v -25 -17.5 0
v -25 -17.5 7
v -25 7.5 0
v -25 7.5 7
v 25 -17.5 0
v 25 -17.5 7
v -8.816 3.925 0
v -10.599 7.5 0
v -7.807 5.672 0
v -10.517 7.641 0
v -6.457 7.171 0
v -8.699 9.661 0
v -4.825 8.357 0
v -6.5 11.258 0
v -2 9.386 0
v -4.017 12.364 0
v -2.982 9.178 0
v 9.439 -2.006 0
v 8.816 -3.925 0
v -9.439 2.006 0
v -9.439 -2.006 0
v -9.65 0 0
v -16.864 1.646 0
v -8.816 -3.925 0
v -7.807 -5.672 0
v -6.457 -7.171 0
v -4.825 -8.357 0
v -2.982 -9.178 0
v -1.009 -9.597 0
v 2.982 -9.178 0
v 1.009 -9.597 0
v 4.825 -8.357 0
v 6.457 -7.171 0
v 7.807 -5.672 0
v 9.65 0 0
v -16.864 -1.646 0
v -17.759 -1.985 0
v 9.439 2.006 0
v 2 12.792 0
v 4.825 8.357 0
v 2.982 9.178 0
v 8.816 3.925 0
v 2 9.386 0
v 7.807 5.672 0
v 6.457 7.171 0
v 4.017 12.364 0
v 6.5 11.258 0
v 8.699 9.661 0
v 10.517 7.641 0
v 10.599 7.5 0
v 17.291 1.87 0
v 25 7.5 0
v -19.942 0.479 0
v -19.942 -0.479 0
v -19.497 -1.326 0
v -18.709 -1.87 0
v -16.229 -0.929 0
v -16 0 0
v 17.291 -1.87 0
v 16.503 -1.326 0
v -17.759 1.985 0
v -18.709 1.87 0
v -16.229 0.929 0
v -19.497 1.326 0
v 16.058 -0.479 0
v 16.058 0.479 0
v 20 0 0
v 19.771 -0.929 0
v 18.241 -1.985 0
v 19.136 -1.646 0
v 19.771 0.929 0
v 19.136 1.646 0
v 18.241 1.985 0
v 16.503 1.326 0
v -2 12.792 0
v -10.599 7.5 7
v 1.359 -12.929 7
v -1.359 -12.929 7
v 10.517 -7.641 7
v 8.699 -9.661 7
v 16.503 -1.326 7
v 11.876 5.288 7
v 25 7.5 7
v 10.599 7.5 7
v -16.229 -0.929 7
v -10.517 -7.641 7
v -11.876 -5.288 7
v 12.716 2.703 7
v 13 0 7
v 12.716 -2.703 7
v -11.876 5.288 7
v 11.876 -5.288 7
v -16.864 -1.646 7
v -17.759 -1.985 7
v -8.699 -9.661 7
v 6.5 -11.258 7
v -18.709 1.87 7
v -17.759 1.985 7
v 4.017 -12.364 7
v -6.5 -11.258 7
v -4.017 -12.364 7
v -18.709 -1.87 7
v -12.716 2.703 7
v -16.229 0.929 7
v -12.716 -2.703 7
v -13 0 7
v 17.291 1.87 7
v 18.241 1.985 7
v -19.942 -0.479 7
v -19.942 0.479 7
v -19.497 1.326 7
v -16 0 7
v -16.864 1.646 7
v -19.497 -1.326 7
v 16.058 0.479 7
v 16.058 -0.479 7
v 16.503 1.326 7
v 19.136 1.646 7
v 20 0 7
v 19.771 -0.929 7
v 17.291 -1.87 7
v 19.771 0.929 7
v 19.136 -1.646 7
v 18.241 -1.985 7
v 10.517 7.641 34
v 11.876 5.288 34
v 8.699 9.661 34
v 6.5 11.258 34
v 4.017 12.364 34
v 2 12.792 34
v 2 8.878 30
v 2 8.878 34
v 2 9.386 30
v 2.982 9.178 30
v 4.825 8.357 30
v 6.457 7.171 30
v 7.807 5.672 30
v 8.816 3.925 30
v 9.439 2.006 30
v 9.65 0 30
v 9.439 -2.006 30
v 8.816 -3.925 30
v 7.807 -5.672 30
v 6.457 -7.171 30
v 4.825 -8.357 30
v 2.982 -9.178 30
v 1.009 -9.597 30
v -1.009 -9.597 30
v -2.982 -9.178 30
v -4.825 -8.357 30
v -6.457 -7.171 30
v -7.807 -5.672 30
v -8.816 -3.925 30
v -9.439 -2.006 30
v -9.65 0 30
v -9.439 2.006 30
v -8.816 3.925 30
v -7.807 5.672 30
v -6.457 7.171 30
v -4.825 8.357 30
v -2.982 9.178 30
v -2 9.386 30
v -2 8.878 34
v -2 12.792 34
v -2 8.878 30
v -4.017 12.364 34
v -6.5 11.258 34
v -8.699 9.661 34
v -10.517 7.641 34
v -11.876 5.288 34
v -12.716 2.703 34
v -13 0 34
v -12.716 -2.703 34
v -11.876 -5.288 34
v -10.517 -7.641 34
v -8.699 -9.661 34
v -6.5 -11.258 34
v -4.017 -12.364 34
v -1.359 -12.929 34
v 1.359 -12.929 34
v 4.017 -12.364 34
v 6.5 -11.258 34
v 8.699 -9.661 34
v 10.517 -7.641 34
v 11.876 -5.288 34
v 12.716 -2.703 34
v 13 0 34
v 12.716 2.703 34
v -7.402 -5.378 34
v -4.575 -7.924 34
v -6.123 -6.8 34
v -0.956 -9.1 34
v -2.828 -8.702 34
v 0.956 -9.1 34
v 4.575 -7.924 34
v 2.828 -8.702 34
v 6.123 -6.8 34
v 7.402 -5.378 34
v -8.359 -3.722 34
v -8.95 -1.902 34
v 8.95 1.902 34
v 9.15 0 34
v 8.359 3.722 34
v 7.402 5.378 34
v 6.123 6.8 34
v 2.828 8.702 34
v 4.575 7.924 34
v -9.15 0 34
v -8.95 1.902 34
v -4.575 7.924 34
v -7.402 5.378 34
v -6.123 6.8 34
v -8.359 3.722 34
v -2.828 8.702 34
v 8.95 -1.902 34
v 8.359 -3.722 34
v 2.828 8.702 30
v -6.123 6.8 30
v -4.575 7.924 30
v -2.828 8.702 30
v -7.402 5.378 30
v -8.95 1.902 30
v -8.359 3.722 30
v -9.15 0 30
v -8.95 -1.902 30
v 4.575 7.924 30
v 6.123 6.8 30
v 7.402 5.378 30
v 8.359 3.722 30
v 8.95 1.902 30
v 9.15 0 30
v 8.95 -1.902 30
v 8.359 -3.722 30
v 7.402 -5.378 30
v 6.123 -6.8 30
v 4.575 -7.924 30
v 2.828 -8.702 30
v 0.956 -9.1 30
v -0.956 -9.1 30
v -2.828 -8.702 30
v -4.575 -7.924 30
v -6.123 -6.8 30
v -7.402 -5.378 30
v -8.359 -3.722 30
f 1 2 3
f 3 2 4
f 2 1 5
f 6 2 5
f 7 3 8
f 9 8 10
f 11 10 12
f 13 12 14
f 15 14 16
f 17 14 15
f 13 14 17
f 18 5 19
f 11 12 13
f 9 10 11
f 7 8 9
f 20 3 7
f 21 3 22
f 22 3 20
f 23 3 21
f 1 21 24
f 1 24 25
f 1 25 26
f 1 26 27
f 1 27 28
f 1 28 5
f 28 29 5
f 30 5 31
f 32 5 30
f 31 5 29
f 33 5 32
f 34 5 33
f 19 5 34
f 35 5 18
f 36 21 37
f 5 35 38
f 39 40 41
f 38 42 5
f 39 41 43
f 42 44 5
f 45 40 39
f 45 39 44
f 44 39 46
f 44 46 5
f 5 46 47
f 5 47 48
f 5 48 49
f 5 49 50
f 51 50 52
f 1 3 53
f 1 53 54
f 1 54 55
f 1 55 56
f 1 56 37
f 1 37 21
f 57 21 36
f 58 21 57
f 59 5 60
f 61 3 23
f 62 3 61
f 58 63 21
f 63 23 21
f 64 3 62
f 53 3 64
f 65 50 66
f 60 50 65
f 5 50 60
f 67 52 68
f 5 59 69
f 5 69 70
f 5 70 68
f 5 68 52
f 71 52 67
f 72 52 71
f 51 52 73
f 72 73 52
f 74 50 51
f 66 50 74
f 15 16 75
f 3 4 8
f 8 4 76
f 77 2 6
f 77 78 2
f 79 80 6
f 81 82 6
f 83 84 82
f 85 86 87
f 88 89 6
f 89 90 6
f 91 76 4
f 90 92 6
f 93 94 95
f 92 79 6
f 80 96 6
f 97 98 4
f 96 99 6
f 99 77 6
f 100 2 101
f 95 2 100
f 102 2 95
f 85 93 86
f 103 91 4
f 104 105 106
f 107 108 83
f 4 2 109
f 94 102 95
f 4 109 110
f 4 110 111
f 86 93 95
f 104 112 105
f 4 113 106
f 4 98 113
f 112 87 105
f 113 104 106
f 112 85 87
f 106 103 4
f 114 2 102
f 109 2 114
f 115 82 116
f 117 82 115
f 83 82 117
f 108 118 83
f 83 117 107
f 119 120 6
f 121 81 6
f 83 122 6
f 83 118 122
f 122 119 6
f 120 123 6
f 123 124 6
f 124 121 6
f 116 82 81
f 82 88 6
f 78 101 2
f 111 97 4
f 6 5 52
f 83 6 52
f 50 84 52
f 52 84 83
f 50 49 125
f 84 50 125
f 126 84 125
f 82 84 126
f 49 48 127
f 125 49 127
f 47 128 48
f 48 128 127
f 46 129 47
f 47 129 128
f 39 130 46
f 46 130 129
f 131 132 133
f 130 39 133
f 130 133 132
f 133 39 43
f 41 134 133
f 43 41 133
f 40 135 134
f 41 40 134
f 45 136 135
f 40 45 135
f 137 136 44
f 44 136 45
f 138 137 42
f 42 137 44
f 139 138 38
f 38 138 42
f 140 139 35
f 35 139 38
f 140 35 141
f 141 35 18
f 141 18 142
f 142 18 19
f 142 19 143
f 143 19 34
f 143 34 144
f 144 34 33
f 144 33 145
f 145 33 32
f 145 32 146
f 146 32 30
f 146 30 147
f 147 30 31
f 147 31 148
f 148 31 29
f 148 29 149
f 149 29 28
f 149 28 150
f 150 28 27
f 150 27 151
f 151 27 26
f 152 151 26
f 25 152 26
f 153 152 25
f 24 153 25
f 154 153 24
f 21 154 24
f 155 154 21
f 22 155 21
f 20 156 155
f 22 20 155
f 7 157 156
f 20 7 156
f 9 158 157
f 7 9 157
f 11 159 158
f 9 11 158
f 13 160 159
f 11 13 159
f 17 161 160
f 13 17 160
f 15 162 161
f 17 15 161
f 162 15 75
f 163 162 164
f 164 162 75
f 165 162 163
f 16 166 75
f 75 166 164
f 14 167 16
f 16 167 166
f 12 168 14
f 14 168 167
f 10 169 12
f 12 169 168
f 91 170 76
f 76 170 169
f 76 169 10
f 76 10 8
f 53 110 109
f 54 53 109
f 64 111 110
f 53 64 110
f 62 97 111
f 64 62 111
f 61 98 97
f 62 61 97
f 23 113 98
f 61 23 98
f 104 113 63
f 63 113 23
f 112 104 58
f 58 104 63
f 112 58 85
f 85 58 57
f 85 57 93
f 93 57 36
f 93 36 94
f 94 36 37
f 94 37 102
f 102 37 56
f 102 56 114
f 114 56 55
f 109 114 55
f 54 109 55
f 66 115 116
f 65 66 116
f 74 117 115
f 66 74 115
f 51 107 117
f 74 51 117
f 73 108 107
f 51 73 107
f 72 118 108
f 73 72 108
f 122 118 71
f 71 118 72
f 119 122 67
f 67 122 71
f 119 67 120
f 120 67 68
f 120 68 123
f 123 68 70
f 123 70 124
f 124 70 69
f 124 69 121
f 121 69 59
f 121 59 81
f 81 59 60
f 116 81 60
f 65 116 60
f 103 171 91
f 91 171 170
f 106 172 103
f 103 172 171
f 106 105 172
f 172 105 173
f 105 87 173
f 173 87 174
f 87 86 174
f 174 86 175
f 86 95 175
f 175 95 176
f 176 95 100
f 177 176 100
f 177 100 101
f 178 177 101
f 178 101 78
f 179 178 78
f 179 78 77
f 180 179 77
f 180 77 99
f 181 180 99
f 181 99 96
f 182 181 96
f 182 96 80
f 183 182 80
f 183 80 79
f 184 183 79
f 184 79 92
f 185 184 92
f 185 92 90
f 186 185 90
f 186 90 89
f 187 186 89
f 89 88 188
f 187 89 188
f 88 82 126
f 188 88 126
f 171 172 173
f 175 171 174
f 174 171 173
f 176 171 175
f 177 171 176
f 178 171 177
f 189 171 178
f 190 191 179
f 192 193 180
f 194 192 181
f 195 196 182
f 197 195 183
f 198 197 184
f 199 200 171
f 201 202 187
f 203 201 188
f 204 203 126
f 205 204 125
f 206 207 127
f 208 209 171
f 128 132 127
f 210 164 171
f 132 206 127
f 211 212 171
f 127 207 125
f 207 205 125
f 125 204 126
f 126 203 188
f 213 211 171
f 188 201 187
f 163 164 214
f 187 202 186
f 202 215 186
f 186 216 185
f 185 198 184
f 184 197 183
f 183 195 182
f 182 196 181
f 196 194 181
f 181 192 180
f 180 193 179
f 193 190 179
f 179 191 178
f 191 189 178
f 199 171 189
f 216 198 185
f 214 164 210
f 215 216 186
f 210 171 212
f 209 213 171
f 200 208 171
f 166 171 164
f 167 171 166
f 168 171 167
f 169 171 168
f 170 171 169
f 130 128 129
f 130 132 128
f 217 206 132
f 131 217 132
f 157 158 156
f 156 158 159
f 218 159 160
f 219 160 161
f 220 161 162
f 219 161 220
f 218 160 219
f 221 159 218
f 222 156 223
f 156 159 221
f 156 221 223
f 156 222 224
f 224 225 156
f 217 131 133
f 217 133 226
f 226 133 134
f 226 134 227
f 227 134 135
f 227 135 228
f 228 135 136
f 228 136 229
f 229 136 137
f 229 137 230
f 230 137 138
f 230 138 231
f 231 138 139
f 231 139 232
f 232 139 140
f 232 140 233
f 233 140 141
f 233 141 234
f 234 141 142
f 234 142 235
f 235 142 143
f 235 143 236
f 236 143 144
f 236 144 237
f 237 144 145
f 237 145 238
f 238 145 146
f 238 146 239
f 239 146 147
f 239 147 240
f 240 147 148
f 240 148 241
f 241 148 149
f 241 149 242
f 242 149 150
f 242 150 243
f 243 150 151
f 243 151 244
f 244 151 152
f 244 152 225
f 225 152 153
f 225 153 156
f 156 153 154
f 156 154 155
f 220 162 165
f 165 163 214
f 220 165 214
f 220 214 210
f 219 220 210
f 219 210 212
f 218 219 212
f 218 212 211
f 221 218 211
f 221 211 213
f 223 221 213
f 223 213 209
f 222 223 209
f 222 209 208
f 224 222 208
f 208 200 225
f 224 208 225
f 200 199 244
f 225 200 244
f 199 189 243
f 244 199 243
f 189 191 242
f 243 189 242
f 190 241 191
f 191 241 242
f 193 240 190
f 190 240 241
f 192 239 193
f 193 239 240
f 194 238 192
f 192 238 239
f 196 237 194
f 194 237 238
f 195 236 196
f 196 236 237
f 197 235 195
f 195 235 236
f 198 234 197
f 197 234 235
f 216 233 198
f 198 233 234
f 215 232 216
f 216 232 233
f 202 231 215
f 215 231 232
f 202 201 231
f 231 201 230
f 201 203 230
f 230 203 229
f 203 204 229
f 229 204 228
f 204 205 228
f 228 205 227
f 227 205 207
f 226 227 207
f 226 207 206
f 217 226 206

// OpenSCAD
barwidth = 20;
width_ridge=4;
widthNema17=43;
nema17holeOffset =6;
nema17innerHole=25/2;
nema17Shaft=8/2;
motorThickNess=5;
offsetx =9;
offsety  =9;
barpositionz=30;
rodwidth =8.2;
nutwidth=16;

height = 25;
width = 50;

bearingod=15;

topbardistance=23;
bearinglm10uulength=30;
odlm10uu=19.3;
od=26;
id=14;
od624=13;
odpulley=12;
timingbeltthickness=1;

thickness=7;
spacing_bars = 50;
largeCircle = 70.0;
holeSize=5.5;
bardistance=50;
bearingoffset=2;


holes = [
	[-width/2+7,0,4],
	[width/2-7,0,4]
];



difference() {
	union() {
		
		cylinder(h=bearinglm10uulength+4,r=od/2, center = false, $fs =1);

		translate([-width/2,-height/2-5])
		cube([width,height,thickness]);
	}

	translate([0,0,0])
		cylinder(h=bearinglm10uulength,r=odlm10uu/2, center = false, $fs =1);

	translate([0,0,1])
		cylinder(h=bearinglm10uulength+4,r=odlm10uu/2-0.5, center = false, $fs =1);

	translate([-2,0,0])
	cube([4,height,bearinglm10uulength+5]);

	for(i = holes) 
		translate([ i[0],i[1],0])
			cylinder(h=100,r=i[2]/2, center = false, $fs=1);
}
